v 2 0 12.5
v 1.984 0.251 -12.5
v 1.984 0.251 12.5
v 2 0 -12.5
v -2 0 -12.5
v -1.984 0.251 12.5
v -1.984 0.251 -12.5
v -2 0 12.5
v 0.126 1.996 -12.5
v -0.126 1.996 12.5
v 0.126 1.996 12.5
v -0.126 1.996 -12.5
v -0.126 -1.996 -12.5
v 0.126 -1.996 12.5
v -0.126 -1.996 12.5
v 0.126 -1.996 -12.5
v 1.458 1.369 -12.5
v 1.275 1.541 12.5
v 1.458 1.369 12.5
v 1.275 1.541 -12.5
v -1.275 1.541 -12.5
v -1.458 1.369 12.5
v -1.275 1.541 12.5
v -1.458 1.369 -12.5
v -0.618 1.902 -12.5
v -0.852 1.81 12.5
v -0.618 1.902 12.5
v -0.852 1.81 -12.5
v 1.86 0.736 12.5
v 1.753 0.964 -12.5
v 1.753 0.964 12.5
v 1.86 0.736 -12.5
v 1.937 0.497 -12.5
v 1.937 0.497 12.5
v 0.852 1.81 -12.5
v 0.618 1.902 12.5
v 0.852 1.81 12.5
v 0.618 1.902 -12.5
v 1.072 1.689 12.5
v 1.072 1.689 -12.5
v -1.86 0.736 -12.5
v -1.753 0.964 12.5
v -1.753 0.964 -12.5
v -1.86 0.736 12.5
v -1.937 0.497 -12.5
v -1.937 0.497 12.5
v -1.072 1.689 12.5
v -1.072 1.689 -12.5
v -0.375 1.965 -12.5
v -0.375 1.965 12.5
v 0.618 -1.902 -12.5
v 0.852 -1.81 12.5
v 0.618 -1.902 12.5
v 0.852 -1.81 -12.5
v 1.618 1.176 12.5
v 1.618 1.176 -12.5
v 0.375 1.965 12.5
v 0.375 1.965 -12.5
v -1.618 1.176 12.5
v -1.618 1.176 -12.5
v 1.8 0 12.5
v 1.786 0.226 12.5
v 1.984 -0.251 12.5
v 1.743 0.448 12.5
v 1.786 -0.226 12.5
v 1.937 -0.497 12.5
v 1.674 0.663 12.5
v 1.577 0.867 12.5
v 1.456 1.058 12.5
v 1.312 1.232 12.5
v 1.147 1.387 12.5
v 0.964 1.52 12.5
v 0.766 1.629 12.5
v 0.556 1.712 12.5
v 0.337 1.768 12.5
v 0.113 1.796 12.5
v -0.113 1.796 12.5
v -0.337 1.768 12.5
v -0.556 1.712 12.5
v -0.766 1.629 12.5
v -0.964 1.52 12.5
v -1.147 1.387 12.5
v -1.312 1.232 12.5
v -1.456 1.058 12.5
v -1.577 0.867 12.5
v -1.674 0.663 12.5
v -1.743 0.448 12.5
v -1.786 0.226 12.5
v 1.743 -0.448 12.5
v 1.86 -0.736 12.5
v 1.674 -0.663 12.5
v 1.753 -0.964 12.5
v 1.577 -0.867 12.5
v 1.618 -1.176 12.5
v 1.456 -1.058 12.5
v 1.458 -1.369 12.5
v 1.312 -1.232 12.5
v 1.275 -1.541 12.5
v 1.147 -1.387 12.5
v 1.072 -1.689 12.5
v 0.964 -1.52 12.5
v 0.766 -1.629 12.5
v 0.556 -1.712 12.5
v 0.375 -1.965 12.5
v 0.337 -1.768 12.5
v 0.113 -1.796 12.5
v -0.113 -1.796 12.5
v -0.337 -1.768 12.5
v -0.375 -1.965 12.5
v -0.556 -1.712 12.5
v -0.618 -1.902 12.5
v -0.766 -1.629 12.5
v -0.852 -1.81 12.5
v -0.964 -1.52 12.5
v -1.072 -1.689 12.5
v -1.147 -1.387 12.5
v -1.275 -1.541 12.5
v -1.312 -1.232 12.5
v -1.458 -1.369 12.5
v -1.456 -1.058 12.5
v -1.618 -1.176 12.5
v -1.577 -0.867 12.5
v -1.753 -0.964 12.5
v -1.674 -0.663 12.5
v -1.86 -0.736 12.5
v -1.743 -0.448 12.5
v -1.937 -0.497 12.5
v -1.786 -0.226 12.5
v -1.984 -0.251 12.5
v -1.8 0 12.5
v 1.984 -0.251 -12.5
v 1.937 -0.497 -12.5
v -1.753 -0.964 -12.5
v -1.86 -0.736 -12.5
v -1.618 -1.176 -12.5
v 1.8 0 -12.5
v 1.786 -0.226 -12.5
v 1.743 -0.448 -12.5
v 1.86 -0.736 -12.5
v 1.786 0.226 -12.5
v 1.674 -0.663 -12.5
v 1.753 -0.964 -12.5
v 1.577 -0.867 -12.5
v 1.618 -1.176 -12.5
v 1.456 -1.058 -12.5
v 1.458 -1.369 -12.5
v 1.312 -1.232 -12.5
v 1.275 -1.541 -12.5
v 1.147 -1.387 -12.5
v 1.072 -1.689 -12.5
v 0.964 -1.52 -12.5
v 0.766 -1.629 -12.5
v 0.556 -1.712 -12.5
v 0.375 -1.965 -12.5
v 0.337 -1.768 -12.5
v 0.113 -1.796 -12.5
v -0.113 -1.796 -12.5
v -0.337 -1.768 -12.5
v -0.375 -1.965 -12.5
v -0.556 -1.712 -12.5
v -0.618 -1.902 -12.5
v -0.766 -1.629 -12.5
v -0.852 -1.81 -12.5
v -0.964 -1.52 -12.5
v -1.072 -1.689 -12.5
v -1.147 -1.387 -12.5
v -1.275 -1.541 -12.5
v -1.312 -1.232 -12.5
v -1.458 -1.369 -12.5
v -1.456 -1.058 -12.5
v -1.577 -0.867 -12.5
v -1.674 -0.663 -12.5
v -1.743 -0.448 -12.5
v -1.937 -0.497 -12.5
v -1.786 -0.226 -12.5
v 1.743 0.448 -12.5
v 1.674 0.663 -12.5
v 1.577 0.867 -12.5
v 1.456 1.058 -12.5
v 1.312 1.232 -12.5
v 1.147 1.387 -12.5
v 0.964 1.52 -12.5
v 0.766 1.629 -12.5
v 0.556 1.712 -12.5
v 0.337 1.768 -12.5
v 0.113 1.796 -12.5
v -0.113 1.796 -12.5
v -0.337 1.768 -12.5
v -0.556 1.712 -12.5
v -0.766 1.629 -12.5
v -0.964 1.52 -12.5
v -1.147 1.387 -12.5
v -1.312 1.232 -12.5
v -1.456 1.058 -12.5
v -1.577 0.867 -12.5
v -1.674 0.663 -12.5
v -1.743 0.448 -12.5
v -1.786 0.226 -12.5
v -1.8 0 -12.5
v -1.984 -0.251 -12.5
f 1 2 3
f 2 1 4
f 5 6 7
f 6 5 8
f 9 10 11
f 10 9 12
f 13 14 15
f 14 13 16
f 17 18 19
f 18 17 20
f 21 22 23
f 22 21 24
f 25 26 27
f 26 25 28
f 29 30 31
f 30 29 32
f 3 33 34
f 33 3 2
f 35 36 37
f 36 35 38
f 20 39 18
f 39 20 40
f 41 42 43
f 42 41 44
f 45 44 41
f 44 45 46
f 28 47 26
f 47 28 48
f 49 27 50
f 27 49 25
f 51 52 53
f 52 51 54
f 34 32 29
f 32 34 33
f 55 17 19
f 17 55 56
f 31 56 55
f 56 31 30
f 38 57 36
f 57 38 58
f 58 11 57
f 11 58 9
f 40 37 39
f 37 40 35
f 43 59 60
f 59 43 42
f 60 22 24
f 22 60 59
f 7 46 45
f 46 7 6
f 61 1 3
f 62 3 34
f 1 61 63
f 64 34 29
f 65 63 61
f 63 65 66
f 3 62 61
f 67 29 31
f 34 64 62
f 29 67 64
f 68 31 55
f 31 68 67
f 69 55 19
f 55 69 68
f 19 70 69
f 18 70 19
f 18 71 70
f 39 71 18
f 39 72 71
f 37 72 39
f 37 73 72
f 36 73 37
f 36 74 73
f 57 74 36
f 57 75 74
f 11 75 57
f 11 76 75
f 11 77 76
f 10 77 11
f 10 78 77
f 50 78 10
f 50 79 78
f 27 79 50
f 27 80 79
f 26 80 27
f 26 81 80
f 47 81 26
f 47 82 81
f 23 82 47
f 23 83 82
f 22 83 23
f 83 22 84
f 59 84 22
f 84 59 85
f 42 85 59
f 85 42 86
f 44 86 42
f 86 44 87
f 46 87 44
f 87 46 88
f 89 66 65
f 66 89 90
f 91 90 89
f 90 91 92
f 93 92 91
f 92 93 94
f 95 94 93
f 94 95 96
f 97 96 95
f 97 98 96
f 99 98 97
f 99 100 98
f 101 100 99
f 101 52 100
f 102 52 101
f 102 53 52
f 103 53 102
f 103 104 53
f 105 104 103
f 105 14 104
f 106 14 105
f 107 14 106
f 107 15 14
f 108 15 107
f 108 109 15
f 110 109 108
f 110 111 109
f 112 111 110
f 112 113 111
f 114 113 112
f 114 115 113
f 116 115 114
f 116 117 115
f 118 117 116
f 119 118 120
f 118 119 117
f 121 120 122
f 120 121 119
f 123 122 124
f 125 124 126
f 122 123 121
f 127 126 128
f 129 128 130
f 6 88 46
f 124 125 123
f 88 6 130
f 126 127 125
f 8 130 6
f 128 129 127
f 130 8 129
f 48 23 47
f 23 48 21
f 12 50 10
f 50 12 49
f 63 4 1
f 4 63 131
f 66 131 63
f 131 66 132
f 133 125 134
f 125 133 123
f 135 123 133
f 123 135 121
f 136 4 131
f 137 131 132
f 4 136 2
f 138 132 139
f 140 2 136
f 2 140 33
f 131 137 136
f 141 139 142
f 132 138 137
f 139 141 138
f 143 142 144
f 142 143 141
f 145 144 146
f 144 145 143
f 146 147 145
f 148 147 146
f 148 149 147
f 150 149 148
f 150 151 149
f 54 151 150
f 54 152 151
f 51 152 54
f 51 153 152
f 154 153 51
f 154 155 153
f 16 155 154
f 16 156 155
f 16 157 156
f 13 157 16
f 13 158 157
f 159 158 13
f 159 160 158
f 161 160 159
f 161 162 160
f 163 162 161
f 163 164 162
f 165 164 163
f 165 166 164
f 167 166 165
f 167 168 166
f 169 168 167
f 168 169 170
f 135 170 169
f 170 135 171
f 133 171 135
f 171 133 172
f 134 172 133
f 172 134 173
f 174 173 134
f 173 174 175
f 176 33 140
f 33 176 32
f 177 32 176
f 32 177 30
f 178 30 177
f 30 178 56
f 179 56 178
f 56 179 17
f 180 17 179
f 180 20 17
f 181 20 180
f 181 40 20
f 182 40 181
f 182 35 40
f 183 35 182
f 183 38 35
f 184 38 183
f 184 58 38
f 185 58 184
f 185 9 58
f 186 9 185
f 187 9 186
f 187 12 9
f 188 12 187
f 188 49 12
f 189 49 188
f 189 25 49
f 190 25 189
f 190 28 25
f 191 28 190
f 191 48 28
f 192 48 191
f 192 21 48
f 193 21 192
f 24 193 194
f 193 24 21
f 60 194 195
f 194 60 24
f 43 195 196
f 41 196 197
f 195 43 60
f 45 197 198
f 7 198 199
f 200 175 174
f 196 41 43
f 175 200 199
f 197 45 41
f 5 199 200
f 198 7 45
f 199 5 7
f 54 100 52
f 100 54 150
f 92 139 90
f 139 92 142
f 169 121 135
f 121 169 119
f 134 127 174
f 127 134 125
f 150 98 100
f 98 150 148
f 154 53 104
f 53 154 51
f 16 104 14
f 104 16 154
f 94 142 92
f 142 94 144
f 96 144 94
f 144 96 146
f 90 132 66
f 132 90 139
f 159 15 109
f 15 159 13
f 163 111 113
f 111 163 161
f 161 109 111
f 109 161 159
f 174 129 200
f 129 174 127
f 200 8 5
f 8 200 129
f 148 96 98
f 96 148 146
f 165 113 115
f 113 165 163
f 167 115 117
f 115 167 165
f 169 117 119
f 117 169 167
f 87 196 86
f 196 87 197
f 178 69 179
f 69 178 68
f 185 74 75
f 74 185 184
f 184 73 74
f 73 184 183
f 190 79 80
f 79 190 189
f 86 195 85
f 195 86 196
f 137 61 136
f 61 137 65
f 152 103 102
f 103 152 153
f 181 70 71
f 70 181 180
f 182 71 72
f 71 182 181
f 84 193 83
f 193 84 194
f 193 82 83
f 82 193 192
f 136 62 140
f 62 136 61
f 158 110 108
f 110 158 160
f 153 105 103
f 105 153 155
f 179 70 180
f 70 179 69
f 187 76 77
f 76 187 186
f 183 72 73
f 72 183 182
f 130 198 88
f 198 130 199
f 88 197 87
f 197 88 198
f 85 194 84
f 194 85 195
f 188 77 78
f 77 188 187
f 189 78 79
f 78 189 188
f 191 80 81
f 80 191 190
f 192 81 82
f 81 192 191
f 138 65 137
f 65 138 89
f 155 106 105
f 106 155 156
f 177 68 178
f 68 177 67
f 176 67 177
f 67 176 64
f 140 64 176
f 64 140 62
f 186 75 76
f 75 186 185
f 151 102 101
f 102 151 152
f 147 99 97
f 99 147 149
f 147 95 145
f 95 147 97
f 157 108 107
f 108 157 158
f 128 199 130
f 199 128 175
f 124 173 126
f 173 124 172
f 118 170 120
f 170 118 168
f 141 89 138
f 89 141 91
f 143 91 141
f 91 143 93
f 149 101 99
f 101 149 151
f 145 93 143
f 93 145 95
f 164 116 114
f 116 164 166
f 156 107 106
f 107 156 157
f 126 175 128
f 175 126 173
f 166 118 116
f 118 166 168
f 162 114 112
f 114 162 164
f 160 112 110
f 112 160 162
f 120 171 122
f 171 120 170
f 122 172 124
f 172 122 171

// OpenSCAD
$fn = 50;


difference() {
	union() {
		translate(v = [0, 0, -12.5000000000]) {
			cylinder(h = 25, r = 2.0000000000);
		}
	}
	union() {
		translate(v = [0, 0, -100.0000000000]) {
			cylinder(h = 200, r = 1.8000000000);
		}
	}
}
